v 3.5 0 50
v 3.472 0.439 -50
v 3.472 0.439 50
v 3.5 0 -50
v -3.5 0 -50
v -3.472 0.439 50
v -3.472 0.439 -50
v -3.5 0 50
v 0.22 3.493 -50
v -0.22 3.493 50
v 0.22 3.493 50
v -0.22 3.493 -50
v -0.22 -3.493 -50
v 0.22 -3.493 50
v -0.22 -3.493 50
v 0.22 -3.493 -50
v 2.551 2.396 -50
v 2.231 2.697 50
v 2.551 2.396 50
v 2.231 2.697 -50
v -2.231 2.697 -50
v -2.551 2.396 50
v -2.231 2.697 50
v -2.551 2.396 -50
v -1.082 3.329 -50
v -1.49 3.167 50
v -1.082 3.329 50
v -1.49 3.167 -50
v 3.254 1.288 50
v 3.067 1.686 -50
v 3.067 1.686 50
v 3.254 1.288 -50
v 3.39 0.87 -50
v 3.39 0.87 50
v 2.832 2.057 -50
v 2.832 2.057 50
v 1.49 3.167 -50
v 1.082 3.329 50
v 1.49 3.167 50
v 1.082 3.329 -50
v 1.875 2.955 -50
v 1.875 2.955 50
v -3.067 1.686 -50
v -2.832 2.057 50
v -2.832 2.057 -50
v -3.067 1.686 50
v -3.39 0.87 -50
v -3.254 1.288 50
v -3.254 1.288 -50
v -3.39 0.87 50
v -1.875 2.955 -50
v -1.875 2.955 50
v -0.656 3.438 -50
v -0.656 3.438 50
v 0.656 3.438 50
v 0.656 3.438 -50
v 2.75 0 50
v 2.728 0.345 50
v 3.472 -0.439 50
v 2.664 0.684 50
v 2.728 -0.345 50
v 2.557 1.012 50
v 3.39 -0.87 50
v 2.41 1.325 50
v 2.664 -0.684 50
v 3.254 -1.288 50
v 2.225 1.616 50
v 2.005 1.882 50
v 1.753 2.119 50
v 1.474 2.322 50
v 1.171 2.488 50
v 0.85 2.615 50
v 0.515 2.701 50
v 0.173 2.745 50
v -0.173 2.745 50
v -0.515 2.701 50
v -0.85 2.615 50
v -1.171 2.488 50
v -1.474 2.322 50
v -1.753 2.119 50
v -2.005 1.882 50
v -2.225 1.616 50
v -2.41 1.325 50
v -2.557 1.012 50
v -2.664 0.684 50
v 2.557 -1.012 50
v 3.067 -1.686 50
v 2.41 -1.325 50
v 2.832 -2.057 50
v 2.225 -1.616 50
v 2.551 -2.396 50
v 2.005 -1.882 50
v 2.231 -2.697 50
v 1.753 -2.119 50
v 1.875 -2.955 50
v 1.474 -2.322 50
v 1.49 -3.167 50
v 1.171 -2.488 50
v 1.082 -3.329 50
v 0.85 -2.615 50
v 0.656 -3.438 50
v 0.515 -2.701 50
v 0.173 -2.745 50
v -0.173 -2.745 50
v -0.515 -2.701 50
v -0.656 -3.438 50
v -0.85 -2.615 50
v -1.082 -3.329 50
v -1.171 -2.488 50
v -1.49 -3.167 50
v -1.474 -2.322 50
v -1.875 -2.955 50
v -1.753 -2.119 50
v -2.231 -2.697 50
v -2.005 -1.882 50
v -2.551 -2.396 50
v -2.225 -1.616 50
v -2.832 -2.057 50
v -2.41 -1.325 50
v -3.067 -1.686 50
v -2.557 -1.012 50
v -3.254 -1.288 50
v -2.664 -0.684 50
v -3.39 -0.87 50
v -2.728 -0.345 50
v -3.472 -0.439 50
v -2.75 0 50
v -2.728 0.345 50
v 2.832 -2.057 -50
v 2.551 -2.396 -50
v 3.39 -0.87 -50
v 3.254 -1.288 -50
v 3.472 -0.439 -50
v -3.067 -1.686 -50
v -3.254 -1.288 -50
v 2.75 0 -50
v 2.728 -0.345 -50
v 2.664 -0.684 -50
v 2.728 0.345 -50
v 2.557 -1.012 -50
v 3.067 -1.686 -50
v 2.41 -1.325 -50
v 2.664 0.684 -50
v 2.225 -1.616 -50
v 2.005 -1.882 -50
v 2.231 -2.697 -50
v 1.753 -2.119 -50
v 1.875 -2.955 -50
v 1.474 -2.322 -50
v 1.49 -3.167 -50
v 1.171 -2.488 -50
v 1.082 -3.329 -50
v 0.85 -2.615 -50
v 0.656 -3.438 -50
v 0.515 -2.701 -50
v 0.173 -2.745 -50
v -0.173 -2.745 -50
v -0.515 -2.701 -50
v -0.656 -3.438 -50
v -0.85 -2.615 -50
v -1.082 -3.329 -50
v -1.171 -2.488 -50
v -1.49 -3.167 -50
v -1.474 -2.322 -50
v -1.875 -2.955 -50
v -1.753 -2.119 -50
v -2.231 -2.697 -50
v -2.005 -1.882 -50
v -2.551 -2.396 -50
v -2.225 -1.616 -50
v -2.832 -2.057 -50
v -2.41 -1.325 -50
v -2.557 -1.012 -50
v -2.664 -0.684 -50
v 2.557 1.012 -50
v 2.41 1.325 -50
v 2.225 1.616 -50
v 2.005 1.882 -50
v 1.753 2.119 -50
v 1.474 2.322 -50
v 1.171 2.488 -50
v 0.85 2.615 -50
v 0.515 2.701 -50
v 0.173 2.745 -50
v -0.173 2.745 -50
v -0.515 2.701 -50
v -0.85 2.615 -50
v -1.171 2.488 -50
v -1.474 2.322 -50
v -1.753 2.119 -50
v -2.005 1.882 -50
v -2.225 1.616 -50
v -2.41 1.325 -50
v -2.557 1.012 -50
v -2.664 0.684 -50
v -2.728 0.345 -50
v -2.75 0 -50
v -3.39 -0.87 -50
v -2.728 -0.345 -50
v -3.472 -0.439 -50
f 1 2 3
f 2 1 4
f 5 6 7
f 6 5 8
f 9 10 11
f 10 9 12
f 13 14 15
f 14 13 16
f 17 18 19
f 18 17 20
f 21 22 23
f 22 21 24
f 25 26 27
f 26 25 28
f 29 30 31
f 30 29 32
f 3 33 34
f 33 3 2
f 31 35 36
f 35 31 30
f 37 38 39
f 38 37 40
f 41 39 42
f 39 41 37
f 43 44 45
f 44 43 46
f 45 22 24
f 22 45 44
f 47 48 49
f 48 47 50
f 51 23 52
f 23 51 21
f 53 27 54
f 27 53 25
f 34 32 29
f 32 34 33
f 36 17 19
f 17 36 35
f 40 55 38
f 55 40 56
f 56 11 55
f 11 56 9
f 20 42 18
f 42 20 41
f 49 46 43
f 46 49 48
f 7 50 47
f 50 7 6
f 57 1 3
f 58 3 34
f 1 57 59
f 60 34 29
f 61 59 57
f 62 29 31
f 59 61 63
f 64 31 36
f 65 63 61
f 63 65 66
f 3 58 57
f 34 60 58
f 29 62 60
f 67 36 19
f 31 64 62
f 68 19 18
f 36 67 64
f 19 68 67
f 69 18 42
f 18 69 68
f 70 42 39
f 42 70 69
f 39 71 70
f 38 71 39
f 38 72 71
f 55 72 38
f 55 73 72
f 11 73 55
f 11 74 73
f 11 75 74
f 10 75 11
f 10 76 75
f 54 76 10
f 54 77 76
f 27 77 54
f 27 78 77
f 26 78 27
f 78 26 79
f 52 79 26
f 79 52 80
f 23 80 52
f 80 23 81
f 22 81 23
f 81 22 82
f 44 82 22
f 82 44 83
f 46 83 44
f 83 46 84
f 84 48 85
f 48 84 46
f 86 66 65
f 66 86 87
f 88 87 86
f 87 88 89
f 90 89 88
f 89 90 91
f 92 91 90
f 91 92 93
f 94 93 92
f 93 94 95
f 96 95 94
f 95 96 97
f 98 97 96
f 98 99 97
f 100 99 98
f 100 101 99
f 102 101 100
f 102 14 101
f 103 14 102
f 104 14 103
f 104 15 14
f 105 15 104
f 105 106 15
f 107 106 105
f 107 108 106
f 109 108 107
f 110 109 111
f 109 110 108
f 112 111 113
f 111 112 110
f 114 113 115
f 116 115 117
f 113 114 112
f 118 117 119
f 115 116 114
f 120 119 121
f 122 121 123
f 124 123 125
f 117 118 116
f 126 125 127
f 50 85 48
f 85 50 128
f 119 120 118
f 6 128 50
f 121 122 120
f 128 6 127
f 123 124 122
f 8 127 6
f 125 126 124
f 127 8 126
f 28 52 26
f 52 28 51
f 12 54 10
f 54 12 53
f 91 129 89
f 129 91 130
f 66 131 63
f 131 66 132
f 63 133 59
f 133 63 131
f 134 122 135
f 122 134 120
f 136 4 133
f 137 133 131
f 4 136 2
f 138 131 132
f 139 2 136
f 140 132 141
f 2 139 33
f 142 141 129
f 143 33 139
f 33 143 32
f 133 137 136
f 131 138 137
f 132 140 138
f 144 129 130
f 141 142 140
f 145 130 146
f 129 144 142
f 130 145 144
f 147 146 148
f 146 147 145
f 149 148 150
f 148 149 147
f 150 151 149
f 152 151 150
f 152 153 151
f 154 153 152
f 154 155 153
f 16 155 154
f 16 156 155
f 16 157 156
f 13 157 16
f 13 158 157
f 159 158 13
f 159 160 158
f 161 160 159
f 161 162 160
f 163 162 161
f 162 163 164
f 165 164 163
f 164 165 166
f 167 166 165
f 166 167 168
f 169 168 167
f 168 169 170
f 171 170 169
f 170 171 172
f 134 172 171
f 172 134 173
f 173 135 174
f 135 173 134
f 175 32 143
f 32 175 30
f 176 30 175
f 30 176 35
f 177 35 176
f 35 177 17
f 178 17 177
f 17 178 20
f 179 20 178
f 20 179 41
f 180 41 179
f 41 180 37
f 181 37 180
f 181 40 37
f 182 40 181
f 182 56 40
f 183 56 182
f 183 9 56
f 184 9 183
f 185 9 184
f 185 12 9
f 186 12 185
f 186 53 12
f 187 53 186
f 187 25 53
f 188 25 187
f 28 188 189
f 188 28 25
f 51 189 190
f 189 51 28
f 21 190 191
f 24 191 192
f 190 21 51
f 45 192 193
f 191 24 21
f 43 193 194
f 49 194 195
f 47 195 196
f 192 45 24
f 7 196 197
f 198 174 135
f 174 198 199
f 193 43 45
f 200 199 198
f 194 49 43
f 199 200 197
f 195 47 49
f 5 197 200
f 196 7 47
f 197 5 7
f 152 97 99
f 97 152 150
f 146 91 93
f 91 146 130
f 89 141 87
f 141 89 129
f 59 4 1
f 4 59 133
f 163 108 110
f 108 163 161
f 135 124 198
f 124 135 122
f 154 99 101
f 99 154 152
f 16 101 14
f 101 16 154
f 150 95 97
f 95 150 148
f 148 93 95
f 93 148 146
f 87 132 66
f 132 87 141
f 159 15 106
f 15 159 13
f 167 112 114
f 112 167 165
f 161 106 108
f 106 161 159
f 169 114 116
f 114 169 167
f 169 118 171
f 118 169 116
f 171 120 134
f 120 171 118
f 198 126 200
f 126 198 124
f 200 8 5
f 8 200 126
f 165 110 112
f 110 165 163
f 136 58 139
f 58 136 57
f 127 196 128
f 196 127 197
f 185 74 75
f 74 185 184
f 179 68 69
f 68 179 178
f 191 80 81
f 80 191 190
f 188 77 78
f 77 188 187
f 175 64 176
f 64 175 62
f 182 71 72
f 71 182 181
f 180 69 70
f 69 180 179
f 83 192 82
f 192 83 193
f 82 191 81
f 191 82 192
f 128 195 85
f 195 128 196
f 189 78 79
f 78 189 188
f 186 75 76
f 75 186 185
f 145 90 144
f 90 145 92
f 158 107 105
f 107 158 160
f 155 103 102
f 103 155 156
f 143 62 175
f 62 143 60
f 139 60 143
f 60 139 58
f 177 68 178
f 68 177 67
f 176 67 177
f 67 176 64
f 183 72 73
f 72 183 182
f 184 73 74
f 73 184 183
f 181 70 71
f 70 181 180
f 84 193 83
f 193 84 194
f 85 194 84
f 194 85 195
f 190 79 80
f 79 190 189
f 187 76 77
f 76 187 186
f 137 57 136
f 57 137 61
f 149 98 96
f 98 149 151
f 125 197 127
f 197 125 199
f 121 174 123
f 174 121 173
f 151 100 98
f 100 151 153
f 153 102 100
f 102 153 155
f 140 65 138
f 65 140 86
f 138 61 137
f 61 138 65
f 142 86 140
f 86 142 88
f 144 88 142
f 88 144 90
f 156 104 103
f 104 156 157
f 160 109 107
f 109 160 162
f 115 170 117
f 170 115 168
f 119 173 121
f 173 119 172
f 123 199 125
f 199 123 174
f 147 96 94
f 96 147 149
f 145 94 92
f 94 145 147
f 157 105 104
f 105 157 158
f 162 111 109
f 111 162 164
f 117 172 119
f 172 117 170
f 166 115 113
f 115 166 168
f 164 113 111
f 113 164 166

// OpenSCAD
$fn = 50;


difference() {
	union() {
		translate(v = [0, 0, -50.0000000000]) {
			cylinder(h = 100, r = 3.5000000000);
		}
	}
	union() {
		translate(v = [0, 0, -100.0000000000]) {
			cylinder(h = 200, r = 2.7500000000);
		}
	}
}
